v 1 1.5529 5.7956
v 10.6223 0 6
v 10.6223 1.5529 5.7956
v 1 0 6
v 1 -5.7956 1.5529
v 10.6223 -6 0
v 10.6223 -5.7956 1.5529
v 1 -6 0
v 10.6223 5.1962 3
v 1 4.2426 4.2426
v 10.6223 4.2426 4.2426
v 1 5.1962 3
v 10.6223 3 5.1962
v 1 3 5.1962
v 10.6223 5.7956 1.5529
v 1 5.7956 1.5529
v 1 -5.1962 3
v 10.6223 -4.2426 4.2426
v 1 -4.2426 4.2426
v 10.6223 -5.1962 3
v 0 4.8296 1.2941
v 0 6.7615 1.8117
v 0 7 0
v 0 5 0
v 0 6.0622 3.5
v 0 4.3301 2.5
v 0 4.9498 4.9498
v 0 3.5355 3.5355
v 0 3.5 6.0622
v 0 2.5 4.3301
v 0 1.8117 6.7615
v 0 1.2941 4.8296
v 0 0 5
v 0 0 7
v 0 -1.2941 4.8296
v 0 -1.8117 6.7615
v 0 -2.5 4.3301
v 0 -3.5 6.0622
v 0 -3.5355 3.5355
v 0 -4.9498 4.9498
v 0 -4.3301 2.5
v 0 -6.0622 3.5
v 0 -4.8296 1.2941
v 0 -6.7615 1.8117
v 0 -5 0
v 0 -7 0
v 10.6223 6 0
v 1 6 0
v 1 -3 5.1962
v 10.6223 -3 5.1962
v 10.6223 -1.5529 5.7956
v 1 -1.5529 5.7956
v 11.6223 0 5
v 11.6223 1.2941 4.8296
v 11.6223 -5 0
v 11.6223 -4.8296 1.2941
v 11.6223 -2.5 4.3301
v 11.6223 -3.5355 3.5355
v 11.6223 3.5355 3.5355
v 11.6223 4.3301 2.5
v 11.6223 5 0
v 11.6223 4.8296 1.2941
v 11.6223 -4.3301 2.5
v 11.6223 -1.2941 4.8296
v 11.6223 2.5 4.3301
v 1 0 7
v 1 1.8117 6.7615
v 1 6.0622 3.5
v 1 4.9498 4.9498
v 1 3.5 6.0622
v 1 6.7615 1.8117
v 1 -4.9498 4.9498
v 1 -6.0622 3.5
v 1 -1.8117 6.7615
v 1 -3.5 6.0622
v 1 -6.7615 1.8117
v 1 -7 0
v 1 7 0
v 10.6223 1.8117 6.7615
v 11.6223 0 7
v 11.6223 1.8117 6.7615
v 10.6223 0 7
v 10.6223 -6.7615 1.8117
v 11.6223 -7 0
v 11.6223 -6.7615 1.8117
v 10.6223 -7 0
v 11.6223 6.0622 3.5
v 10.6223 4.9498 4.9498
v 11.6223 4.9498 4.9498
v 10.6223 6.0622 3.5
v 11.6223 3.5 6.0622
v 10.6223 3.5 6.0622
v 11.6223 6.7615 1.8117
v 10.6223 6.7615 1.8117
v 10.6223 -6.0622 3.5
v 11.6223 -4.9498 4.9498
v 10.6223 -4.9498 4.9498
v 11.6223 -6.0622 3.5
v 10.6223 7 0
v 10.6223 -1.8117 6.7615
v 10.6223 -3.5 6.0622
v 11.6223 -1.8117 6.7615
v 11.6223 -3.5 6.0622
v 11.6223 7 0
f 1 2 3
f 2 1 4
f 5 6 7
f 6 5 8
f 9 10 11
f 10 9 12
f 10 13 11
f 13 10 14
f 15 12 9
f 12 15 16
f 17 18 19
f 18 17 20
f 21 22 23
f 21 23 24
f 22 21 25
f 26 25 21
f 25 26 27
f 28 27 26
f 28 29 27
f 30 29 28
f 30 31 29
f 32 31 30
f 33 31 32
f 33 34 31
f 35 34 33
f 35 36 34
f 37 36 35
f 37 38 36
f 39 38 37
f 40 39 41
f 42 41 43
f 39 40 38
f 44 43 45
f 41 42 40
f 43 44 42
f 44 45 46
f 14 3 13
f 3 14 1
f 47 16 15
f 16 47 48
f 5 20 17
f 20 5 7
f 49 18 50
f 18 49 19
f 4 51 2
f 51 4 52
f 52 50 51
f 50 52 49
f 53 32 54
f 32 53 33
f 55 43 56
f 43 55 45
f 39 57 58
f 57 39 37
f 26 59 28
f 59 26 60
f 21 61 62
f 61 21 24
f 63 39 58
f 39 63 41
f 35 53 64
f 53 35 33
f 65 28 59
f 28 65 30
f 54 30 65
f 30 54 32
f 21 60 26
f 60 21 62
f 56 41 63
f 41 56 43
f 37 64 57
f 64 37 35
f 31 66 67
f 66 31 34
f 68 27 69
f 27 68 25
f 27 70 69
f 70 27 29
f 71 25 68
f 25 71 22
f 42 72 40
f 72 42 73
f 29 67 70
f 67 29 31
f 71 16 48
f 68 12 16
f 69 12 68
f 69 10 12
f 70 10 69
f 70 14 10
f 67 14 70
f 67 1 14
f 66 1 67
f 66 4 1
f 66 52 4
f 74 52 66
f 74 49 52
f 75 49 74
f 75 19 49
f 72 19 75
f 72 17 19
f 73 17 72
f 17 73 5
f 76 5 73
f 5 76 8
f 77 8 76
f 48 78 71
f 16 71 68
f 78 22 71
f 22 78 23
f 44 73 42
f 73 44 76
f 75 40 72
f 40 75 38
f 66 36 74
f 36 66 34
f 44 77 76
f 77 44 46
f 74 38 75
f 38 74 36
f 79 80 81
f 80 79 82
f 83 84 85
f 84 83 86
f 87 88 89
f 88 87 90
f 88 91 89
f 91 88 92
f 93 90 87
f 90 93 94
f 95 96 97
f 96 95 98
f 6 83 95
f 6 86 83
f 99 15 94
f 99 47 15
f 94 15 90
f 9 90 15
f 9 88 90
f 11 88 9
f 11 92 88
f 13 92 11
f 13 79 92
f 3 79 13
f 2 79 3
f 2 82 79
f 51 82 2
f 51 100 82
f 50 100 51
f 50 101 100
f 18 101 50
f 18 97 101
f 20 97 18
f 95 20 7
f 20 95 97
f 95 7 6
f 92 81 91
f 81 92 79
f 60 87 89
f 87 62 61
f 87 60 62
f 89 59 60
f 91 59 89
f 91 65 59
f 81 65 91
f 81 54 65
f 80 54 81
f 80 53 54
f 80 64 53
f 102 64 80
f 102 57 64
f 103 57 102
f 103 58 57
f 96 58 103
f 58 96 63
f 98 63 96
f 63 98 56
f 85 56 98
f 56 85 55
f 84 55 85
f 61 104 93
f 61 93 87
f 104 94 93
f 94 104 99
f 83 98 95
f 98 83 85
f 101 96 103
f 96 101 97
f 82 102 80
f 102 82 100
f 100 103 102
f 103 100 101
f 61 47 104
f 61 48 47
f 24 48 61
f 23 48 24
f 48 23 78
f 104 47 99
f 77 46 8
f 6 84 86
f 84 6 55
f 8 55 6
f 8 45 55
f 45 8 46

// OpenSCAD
// file: ../build_environments.scad
// build_environments.scad: modules to build level sections
//

module pool(diameter=10.0, wall_height=2.0, step_width=3.0, connections=[])
{
    difference() {
        union() {
        difference() {
            cylinder(h=0.5,r1=diameter+step_width,r2=diameter+step_width,$fn=48);
            translate([0,0,-0.1])
                cylinder(h=0.7,r1=diameter,r2=diameter,$fn=48);
        }
        difference() {
            cylinder(h=wall_height,r1=diameter+step_width+1.0,r2=diameter+step_width+1.0,$fn=48);
            translate([0,0,-0.1])
                cylinder(h=wall_height+0.2,r1=diameter+step_width,r2=diameter+step_width,$fn=48);
        }
        }
    
        for (c = connections)
        {
            rotate([0,90,0]) {
                angle = atan2(c[1],c[0]);
                rotate([-angle,0,0]) {
                    cylinder(h=diameter+5.0,r1=c[2],r2=c[2],$fn=48);
                }
            }
        }
    }
}

module straight(length=10.0, width=2.0, dy1=0.0, dy2=0.0, dz=0.0)
{
    dims = [0, 0, 0, 0, 0, (dz/length)];
    matrix = [
        [ 1, dims[0], dims[1], 0 ],
        [ dims[2], 1, dims[4], 0 ],
        [ dims[5], dims[3], 1, 0 ],
        [ 0, 0, 0, 1 ]
    ];
    multmatrix(matrix)
    difference() {
        translate([dy1,0,0])
        union() {
            rotate([0,90,0]) {
                difference() {
                    cylinder(h=(length-dy1-dy2),r1=width+1.0,r2=width+1.0,$fn=24);
                    translate([0,0,-0.1])
                        cylinder(h=(length-dy1-dy2+0.2),r1=width,r2=width,$fn=24);
                }
                difference() {
                    cylinder(h=1.0,r1=width+2.0,r2=width+2.0,$fn=24);
                    translate([0,0,-0.1])
                        cylinder(h=1.2,r1=width,r2=width,$fn=24);
                }
                translate([0,0,(length-dy1-dy2)-1.0]) {
                    difference() {
                        cylinder(h=1.0,r1=width+2.0,r2=width+2.0,$fn=24);
                        translate([0,0,-0.1])
                            cylinder(h=1.2,r1=width,r2=width,$fn=24);
                    }
                }
            }
        }
        translate([0,0,-(2*width+4.0)/2])
            cube([3*length,3*length,2*width+4.0],center=true);
    }
}

module curve(p0=[0,0], center=[0,0], dir=1, angle=0.0, width=2.0)
{
    radius = sqrt((p0[0]-center[0])*(p0[0]-center[0]) + (p0[1]-center[1])*(p0[1]-center[1]));
    if (dir == 0) {
        difference() {
            rotate([0,0,-90])
            difference() {
                rotate_extrude(angle = angle, convexity = 10, $fn=32)
                    translate([radius, 0, 0])
                        circle(r = width+1.0,$fn=24);
                rotate([0,0,-1.0])
                    rotate_extrude(angle = angle+2.0, convexity = 10, $fn=32)
                        translate([radius, 0, 0])
                            circle(r = width,$fn=24);
            }
            translate([0,0,-(2*width+4.0)/2])
                cube([5*radius,5*radius,2*width+4.0],center=true);
        }
    }
    else {
        difference() {
            rotate([0,0,90])
            difference() {
                rotate_extrude(angle = -angle, convexity = 10, $fn=32)
                    translate([radius, 0, 0])
                        circle(r = width+1.0,$fn=24);
                rotate([0,0,1.0])
                    rotate_extrude(angle = -angle-2.0, convexity = 10, $fn=32)
                        translate([radius, 0, 0])
                            circle(r = width,$fn=24);
            }
            translate([0,0,-(2*width+4.0)/2])
                cube([5*radius,5*radius,2*width+4.0],center=true);
        }
    }

}

// test pool
//pool(diameter=12.0000, wall_height=3.0000, step_width=3.0000, connections=[[0.0000,-26.0000,2.0000], [23.6074,0.0000,2.0000]]);

// test straight, slope
//straight(length=26.0000, width=2.0000, dy1=11.8322, dy2=6.7082, dz=0.0000);
//straight(length=29.1549, width=12.0000, dy1=0.0000, dy2=0.0000, dz=-15.0000);

// test curve
//curve(p0=[23.6074, 0.0000], center=[23.6074, 5.0000], dir=0, angle=60.1011, width=2.0000);
//curve(p0=[33.6426, 12.4219], center=[37.9771, 9.9295], dir=1, angle=120.4627, width=2.0000);
// main file
use <../build_environments.scad>;
straight(length=11.6223, width=5.0000, dy1=0.0000, dy2=0.0000, dz=0.0000);
